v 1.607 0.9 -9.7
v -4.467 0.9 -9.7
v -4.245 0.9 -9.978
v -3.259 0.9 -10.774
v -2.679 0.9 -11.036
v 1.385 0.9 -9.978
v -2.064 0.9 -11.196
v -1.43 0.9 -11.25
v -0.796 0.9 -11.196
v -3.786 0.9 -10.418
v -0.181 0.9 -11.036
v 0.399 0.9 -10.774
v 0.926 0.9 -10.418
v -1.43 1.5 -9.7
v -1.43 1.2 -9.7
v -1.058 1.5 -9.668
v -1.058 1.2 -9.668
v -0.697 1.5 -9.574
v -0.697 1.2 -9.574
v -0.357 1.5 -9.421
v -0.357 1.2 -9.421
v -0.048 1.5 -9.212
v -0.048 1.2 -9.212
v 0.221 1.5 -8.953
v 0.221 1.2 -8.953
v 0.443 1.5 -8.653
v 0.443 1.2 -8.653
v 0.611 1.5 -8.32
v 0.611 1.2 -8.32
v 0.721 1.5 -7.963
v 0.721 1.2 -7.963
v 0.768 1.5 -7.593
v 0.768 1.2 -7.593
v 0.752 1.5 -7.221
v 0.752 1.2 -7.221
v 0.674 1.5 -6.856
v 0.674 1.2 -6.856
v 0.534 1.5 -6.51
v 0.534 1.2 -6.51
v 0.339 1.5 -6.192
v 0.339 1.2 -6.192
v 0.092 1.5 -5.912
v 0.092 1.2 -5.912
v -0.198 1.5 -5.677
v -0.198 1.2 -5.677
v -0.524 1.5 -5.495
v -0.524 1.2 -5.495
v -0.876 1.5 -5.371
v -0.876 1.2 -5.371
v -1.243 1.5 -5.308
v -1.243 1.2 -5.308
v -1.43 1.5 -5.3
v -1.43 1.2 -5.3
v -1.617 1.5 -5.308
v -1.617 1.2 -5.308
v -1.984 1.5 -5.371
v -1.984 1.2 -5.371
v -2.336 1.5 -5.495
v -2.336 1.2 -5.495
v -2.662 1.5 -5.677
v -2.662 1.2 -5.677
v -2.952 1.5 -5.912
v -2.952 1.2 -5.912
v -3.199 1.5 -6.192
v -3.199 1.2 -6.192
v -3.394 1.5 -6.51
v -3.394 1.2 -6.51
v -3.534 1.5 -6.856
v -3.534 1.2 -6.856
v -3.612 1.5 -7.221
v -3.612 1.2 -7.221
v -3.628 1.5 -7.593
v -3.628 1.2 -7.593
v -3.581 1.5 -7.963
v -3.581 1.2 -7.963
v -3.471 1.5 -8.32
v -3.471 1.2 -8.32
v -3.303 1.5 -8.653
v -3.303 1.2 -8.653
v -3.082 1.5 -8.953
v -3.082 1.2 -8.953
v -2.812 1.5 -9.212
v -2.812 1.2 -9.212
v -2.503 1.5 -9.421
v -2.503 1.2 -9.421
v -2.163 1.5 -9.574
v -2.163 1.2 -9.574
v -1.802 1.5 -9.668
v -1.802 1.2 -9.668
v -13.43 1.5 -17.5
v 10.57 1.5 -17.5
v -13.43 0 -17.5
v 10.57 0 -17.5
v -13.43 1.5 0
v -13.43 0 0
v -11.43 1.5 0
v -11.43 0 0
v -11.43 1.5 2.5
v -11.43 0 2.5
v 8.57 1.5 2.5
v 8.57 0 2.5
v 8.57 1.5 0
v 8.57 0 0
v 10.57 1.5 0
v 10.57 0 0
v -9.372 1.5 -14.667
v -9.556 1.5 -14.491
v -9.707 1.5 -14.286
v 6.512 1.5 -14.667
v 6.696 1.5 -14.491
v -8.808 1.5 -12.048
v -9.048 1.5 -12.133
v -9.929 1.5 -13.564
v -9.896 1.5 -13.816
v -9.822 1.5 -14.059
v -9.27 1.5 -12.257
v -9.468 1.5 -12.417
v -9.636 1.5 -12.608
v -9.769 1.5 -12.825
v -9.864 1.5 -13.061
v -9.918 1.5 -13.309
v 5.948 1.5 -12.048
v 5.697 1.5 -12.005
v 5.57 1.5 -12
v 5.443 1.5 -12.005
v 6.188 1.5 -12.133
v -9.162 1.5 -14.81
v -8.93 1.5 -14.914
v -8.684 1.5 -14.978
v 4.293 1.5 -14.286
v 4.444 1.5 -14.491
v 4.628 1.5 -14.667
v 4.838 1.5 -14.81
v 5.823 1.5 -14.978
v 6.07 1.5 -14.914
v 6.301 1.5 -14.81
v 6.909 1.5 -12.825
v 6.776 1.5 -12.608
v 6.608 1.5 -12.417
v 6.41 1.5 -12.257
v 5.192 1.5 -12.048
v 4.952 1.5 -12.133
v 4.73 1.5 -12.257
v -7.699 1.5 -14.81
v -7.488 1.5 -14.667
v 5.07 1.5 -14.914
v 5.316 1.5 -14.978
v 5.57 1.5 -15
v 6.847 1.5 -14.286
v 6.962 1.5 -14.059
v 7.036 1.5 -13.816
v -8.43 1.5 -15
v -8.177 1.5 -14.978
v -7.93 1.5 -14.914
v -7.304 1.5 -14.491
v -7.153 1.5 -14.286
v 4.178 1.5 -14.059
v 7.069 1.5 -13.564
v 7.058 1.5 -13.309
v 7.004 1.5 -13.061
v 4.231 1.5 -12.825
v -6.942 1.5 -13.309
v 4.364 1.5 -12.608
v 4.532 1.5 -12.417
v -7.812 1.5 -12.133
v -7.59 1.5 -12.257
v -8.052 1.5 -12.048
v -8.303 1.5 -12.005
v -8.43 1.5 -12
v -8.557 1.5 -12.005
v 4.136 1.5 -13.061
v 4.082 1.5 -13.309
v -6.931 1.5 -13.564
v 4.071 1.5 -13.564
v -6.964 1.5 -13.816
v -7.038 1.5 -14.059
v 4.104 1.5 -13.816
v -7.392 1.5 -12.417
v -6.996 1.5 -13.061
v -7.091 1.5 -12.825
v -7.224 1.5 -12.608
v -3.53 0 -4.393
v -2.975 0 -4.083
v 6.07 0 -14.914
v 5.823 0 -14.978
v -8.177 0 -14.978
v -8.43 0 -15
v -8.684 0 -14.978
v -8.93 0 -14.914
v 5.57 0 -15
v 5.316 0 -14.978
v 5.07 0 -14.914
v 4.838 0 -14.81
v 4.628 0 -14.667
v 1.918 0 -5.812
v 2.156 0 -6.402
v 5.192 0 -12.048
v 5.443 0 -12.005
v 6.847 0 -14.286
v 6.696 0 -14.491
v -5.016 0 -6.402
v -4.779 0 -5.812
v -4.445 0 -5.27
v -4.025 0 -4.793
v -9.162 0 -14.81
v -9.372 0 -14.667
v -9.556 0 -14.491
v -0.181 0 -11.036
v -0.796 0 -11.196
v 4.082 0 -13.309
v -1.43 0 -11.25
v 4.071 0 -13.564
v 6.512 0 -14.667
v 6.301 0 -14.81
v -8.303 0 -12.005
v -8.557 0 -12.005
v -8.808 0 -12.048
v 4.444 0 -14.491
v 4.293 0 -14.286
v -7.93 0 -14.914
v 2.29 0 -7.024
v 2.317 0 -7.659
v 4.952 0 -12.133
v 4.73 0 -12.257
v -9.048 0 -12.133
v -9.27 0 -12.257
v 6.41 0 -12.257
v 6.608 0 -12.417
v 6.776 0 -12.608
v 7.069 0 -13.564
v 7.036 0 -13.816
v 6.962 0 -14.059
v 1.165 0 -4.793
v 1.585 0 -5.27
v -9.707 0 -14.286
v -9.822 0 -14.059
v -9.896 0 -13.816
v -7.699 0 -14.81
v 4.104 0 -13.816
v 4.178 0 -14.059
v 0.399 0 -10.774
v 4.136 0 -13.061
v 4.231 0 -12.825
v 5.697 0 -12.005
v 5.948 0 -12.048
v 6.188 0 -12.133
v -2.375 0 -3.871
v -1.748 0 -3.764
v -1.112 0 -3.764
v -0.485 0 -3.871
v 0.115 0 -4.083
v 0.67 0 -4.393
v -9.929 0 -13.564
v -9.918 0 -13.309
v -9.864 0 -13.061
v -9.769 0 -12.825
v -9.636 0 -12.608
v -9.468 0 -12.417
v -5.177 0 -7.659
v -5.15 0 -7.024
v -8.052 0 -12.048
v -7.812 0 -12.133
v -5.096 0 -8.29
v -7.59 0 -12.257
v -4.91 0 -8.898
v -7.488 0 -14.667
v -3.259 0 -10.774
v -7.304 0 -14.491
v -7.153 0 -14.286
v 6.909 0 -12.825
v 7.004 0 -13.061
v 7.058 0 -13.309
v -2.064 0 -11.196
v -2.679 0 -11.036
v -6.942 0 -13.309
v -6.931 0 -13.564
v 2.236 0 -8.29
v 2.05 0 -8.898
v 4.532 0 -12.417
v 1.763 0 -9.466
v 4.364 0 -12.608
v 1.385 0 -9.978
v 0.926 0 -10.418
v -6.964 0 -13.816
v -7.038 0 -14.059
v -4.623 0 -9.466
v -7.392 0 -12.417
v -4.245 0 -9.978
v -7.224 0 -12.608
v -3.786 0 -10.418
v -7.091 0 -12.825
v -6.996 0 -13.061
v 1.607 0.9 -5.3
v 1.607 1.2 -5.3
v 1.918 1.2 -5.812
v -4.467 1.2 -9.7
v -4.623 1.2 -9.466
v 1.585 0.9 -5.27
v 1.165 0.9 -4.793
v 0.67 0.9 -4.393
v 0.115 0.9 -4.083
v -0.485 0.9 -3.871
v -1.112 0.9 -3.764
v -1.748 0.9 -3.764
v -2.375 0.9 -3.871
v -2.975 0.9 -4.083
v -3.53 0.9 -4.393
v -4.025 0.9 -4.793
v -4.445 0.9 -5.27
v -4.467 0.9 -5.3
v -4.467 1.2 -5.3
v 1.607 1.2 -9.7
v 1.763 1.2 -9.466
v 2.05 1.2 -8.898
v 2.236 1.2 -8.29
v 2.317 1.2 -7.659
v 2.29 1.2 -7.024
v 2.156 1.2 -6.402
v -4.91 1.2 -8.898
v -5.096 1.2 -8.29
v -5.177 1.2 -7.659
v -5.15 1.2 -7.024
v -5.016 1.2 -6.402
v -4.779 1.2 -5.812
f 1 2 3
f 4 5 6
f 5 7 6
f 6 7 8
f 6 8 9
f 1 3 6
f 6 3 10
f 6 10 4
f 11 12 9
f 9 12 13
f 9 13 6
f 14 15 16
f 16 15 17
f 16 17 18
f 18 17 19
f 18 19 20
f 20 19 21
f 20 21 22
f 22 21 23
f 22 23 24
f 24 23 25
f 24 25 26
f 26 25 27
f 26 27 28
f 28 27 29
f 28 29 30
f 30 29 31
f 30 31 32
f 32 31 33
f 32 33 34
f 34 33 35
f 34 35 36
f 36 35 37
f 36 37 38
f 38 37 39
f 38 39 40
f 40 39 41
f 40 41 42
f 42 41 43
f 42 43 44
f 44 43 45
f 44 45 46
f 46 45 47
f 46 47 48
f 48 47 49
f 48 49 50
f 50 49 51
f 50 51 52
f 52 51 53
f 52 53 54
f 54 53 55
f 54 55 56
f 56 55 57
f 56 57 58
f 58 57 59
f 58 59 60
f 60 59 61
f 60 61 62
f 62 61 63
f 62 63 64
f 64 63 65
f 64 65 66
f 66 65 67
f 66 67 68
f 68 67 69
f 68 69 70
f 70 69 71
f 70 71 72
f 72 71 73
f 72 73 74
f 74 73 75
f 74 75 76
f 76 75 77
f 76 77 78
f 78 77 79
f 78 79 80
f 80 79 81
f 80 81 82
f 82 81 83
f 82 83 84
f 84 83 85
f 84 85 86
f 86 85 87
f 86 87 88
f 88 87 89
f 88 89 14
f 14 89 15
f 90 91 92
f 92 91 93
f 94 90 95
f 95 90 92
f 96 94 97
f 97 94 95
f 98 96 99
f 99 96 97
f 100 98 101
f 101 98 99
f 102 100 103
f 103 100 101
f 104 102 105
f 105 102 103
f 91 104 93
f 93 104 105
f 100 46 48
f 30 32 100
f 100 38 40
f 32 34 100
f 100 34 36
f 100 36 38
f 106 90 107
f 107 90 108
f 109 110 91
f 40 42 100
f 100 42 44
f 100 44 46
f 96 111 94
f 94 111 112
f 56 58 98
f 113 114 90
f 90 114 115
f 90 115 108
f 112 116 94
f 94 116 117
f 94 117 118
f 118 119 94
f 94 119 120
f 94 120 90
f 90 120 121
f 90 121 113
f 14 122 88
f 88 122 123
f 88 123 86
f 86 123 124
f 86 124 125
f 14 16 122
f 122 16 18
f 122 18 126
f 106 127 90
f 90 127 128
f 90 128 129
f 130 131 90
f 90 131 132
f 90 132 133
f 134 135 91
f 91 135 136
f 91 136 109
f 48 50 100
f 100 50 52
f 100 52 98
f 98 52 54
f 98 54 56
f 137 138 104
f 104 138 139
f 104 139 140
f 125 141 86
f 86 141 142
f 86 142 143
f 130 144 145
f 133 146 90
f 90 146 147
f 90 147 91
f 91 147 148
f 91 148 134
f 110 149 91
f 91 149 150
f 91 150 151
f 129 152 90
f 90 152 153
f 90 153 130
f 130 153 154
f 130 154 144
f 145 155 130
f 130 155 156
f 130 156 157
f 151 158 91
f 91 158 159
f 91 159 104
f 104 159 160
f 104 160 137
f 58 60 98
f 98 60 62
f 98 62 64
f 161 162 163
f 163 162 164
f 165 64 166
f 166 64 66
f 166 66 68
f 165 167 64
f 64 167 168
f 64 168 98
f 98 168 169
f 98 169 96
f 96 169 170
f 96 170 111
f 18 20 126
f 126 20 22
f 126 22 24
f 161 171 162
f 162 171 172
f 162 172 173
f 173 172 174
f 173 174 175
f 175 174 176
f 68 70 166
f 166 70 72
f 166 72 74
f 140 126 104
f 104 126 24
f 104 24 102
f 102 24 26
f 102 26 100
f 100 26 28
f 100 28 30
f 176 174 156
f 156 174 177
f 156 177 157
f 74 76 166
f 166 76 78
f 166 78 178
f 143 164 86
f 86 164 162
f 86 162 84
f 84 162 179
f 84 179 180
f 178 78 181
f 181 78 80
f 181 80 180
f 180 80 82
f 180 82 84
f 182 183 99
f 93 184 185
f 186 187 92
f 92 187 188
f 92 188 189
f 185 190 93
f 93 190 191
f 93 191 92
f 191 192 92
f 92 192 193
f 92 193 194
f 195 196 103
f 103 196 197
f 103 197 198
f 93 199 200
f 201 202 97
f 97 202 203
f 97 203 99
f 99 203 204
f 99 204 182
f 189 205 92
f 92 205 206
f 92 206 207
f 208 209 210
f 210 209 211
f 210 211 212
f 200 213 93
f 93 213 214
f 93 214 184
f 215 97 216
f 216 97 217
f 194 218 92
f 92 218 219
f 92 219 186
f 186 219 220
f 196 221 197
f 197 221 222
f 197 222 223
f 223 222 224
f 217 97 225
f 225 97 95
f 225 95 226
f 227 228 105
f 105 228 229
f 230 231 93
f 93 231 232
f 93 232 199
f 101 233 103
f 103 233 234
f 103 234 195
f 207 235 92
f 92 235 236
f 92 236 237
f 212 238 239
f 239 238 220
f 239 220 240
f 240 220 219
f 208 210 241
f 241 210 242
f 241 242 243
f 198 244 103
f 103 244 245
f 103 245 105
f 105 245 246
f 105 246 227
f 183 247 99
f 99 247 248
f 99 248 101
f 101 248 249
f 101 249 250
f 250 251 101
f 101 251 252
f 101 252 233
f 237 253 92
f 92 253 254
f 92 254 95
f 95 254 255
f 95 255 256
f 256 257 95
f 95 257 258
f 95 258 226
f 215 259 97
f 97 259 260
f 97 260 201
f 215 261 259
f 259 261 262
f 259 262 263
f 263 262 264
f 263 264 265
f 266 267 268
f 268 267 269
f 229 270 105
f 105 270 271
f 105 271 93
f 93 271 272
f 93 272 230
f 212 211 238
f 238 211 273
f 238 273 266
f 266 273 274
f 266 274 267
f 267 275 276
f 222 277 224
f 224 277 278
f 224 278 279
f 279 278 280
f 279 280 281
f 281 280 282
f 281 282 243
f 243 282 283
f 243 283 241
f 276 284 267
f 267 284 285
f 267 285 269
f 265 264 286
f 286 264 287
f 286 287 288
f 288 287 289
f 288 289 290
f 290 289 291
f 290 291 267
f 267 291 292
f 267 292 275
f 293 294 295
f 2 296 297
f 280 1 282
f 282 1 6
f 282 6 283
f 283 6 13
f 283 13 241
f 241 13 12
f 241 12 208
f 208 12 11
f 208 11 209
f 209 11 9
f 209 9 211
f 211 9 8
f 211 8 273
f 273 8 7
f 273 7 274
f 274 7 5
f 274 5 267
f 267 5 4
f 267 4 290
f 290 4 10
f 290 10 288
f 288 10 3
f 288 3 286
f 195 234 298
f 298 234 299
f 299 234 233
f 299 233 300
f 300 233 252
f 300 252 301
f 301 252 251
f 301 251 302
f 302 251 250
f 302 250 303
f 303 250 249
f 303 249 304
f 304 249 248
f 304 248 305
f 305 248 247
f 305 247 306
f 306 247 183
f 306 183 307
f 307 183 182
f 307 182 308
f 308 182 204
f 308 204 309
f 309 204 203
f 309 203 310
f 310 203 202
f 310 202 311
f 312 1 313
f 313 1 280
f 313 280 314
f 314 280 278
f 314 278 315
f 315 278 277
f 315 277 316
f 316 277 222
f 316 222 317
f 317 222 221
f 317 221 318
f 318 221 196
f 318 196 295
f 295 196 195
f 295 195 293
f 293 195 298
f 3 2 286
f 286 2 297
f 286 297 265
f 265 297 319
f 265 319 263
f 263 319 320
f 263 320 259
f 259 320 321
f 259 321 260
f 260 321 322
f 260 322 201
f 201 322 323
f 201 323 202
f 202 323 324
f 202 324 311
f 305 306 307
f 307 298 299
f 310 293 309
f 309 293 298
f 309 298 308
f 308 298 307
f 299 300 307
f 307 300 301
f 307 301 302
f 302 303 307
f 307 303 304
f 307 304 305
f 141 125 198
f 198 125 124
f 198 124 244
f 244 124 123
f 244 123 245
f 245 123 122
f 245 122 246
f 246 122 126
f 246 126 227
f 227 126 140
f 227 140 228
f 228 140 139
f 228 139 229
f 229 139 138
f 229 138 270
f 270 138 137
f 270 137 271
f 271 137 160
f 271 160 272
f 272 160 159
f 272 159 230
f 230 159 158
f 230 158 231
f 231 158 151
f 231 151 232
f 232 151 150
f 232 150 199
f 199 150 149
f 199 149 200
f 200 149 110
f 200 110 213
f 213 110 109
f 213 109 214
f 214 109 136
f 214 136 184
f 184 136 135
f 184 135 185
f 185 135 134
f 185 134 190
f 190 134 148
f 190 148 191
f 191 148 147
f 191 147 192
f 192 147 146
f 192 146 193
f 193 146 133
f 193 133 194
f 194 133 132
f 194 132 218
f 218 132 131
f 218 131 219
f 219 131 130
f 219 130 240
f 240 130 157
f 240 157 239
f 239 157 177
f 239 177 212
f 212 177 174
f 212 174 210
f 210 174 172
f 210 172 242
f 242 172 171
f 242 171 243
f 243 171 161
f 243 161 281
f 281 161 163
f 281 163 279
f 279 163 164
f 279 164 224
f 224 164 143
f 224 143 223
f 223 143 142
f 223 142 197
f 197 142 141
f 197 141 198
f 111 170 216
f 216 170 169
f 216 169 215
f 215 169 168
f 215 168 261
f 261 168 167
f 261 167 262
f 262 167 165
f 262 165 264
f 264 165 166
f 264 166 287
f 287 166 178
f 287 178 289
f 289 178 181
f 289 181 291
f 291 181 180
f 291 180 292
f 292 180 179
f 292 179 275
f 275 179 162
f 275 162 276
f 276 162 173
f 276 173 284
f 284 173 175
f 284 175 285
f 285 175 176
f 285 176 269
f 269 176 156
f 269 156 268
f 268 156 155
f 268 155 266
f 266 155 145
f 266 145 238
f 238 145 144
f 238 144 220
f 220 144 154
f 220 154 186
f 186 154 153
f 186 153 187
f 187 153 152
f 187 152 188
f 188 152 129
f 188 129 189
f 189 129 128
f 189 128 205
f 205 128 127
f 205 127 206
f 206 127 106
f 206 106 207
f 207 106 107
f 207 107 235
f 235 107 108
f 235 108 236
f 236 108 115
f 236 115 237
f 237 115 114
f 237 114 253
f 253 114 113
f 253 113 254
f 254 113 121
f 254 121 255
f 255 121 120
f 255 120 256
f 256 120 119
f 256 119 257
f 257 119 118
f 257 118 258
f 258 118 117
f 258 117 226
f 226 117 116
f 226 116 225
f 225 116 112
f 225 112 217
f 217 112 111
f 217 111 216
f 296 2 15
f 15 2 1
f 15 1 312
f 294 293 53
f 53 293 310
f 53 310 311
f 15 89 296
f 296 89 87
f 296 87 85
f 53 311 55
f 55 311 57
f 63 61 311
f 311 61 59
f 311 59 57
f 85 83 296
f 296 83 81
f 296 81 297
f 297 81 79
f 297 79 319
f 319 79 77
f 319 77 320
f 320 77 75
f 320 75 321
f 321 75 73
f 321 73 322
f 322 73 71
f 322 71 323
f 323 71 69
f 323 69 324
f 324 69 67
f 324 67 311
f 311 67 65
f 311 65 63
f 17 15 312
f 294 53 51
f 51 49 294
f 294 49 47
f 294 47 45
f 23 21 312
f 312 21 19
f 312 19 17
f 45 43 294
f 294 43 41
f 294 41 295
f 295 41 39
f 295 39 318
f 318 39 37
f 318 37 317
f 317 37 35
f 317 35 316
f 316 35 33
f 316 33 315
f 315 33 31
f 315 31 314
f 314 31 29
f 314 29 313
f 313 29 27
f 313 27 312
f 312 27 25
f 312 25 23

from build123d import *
from build123d.topology import SkipClean

# Parameters (mm, degrees)
BOSS_EXTRUDE1_DEPTH = 1.5
SKETCH3_R           = 3.75
CUT_EXTRUDE1_DEPTH  = 0.9
SKETCH4_R           = 2.2
CUT_EXTRUDE2_DEPTH  = 0.9
SKETCH5_R           = 1.5
CUT_EXTRUDE3_DEPTH  = 6
CUT_EXTRUDE4_DEPTH  = 0.3


with BuildPart() as part:
    # Sketch1 → Boss-Extrude1 (new body)
    with BuildSketch(Plane(origin=(0, 0, 0), x_dir=(1, 0, 0), z_dir=(0, 1, 0))):
        Polygon((-13.430051813, 17.5), (-13.430051813, 0), (-11.430051813, 0), (-11.430051813, -2.5), (8.569948187, -2.5), (8.569948187, 0), (10.569948187, 0), (10.569948187, 17.5), align=None)
    extrude(amount=BOSS_EXTRUDE1_DEPTH)

    # Sketch3 → Cut-Extrude1 (cut)
    with BuildSketch(Plane.XZ):
        with Locations(Location((-1.430051813, -7.5, 0), (0, 0, 270))):
            Circle(SKETCH3_R)
    extrude(amount=-CUT_EXTRUDE1_DEPTH, mode=Mode.SUBTRACT)

    # Sketch4 → Cut-Extrude2 (cut)
    with BuildSketch(Plane.XZ.offset(-0.9)):
        with Locations(Location((-1.430051813, -7.5, 0), (0, 0, 270))):
            Circle(SKETCH4_R)
    extrude(amount=-CUT_EXTRUDE2_DEPTH, mode=Mode.SUBTRACT)

    # Sketch5 → Cut-Extrude3 (cut)
    with BuildSketch(Plane.XZ):
        with Locations(Location((-8.430051813, -13.5, 0), (0, 0, 270))):
            Circle(SKETCH5_R)
        with Locations(Location((5.569948187, -13.5, 0), (0, 0, 270))):
            Circle(SKETCH5_R)
    extrude(amount=-CUT_EXTRUDE3_DEPTH, mode=Mode.SUBTRACT)

    # Sketch6 → Cut-Extrude4 (cut)
    with SkipClean():  # the faces are left unmerged after this step: merging them gives an invalid solid
        with BuildSketch(Plane.XZ.offset(-0.9)):
            with BuildLine():
                Line((1.606805114, -9.7), (-4.466908741, -9.7))
                ThreePointArc((-4.466908741, -9.7), (-5.180051813, -7.5), (-4.466908741, -5.3))
                Line((-4.466908741, -5.3), (1.606805114, -5.3))
                ThreePointArc((1.606805114, -5.3), (2.319948187, -7.5), (1.606805114, -9.7))
            make_face()
        extrude(amount=-CUT_EXTRUDE4_DEPTH, mode=Mode.SUBTRACT)


solid = part.part
